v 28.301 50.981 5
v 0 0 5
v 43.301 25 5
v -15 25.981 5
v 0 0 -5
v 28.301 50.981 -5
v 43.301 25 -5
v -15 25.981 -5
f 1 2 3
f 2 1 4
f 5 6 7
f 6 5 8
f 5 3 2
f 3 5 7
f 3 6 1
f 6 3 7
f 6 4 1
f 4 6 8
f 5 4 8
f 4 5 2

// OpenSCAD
module cut(width, height, depth, angle) {
  rotate([0, 0, angle])
  translate([0, 0, -depth/2])
  cube([width, height, depth]);
}

// Example usage:
cut(width=50, height=30, depth=10, angle=30);
